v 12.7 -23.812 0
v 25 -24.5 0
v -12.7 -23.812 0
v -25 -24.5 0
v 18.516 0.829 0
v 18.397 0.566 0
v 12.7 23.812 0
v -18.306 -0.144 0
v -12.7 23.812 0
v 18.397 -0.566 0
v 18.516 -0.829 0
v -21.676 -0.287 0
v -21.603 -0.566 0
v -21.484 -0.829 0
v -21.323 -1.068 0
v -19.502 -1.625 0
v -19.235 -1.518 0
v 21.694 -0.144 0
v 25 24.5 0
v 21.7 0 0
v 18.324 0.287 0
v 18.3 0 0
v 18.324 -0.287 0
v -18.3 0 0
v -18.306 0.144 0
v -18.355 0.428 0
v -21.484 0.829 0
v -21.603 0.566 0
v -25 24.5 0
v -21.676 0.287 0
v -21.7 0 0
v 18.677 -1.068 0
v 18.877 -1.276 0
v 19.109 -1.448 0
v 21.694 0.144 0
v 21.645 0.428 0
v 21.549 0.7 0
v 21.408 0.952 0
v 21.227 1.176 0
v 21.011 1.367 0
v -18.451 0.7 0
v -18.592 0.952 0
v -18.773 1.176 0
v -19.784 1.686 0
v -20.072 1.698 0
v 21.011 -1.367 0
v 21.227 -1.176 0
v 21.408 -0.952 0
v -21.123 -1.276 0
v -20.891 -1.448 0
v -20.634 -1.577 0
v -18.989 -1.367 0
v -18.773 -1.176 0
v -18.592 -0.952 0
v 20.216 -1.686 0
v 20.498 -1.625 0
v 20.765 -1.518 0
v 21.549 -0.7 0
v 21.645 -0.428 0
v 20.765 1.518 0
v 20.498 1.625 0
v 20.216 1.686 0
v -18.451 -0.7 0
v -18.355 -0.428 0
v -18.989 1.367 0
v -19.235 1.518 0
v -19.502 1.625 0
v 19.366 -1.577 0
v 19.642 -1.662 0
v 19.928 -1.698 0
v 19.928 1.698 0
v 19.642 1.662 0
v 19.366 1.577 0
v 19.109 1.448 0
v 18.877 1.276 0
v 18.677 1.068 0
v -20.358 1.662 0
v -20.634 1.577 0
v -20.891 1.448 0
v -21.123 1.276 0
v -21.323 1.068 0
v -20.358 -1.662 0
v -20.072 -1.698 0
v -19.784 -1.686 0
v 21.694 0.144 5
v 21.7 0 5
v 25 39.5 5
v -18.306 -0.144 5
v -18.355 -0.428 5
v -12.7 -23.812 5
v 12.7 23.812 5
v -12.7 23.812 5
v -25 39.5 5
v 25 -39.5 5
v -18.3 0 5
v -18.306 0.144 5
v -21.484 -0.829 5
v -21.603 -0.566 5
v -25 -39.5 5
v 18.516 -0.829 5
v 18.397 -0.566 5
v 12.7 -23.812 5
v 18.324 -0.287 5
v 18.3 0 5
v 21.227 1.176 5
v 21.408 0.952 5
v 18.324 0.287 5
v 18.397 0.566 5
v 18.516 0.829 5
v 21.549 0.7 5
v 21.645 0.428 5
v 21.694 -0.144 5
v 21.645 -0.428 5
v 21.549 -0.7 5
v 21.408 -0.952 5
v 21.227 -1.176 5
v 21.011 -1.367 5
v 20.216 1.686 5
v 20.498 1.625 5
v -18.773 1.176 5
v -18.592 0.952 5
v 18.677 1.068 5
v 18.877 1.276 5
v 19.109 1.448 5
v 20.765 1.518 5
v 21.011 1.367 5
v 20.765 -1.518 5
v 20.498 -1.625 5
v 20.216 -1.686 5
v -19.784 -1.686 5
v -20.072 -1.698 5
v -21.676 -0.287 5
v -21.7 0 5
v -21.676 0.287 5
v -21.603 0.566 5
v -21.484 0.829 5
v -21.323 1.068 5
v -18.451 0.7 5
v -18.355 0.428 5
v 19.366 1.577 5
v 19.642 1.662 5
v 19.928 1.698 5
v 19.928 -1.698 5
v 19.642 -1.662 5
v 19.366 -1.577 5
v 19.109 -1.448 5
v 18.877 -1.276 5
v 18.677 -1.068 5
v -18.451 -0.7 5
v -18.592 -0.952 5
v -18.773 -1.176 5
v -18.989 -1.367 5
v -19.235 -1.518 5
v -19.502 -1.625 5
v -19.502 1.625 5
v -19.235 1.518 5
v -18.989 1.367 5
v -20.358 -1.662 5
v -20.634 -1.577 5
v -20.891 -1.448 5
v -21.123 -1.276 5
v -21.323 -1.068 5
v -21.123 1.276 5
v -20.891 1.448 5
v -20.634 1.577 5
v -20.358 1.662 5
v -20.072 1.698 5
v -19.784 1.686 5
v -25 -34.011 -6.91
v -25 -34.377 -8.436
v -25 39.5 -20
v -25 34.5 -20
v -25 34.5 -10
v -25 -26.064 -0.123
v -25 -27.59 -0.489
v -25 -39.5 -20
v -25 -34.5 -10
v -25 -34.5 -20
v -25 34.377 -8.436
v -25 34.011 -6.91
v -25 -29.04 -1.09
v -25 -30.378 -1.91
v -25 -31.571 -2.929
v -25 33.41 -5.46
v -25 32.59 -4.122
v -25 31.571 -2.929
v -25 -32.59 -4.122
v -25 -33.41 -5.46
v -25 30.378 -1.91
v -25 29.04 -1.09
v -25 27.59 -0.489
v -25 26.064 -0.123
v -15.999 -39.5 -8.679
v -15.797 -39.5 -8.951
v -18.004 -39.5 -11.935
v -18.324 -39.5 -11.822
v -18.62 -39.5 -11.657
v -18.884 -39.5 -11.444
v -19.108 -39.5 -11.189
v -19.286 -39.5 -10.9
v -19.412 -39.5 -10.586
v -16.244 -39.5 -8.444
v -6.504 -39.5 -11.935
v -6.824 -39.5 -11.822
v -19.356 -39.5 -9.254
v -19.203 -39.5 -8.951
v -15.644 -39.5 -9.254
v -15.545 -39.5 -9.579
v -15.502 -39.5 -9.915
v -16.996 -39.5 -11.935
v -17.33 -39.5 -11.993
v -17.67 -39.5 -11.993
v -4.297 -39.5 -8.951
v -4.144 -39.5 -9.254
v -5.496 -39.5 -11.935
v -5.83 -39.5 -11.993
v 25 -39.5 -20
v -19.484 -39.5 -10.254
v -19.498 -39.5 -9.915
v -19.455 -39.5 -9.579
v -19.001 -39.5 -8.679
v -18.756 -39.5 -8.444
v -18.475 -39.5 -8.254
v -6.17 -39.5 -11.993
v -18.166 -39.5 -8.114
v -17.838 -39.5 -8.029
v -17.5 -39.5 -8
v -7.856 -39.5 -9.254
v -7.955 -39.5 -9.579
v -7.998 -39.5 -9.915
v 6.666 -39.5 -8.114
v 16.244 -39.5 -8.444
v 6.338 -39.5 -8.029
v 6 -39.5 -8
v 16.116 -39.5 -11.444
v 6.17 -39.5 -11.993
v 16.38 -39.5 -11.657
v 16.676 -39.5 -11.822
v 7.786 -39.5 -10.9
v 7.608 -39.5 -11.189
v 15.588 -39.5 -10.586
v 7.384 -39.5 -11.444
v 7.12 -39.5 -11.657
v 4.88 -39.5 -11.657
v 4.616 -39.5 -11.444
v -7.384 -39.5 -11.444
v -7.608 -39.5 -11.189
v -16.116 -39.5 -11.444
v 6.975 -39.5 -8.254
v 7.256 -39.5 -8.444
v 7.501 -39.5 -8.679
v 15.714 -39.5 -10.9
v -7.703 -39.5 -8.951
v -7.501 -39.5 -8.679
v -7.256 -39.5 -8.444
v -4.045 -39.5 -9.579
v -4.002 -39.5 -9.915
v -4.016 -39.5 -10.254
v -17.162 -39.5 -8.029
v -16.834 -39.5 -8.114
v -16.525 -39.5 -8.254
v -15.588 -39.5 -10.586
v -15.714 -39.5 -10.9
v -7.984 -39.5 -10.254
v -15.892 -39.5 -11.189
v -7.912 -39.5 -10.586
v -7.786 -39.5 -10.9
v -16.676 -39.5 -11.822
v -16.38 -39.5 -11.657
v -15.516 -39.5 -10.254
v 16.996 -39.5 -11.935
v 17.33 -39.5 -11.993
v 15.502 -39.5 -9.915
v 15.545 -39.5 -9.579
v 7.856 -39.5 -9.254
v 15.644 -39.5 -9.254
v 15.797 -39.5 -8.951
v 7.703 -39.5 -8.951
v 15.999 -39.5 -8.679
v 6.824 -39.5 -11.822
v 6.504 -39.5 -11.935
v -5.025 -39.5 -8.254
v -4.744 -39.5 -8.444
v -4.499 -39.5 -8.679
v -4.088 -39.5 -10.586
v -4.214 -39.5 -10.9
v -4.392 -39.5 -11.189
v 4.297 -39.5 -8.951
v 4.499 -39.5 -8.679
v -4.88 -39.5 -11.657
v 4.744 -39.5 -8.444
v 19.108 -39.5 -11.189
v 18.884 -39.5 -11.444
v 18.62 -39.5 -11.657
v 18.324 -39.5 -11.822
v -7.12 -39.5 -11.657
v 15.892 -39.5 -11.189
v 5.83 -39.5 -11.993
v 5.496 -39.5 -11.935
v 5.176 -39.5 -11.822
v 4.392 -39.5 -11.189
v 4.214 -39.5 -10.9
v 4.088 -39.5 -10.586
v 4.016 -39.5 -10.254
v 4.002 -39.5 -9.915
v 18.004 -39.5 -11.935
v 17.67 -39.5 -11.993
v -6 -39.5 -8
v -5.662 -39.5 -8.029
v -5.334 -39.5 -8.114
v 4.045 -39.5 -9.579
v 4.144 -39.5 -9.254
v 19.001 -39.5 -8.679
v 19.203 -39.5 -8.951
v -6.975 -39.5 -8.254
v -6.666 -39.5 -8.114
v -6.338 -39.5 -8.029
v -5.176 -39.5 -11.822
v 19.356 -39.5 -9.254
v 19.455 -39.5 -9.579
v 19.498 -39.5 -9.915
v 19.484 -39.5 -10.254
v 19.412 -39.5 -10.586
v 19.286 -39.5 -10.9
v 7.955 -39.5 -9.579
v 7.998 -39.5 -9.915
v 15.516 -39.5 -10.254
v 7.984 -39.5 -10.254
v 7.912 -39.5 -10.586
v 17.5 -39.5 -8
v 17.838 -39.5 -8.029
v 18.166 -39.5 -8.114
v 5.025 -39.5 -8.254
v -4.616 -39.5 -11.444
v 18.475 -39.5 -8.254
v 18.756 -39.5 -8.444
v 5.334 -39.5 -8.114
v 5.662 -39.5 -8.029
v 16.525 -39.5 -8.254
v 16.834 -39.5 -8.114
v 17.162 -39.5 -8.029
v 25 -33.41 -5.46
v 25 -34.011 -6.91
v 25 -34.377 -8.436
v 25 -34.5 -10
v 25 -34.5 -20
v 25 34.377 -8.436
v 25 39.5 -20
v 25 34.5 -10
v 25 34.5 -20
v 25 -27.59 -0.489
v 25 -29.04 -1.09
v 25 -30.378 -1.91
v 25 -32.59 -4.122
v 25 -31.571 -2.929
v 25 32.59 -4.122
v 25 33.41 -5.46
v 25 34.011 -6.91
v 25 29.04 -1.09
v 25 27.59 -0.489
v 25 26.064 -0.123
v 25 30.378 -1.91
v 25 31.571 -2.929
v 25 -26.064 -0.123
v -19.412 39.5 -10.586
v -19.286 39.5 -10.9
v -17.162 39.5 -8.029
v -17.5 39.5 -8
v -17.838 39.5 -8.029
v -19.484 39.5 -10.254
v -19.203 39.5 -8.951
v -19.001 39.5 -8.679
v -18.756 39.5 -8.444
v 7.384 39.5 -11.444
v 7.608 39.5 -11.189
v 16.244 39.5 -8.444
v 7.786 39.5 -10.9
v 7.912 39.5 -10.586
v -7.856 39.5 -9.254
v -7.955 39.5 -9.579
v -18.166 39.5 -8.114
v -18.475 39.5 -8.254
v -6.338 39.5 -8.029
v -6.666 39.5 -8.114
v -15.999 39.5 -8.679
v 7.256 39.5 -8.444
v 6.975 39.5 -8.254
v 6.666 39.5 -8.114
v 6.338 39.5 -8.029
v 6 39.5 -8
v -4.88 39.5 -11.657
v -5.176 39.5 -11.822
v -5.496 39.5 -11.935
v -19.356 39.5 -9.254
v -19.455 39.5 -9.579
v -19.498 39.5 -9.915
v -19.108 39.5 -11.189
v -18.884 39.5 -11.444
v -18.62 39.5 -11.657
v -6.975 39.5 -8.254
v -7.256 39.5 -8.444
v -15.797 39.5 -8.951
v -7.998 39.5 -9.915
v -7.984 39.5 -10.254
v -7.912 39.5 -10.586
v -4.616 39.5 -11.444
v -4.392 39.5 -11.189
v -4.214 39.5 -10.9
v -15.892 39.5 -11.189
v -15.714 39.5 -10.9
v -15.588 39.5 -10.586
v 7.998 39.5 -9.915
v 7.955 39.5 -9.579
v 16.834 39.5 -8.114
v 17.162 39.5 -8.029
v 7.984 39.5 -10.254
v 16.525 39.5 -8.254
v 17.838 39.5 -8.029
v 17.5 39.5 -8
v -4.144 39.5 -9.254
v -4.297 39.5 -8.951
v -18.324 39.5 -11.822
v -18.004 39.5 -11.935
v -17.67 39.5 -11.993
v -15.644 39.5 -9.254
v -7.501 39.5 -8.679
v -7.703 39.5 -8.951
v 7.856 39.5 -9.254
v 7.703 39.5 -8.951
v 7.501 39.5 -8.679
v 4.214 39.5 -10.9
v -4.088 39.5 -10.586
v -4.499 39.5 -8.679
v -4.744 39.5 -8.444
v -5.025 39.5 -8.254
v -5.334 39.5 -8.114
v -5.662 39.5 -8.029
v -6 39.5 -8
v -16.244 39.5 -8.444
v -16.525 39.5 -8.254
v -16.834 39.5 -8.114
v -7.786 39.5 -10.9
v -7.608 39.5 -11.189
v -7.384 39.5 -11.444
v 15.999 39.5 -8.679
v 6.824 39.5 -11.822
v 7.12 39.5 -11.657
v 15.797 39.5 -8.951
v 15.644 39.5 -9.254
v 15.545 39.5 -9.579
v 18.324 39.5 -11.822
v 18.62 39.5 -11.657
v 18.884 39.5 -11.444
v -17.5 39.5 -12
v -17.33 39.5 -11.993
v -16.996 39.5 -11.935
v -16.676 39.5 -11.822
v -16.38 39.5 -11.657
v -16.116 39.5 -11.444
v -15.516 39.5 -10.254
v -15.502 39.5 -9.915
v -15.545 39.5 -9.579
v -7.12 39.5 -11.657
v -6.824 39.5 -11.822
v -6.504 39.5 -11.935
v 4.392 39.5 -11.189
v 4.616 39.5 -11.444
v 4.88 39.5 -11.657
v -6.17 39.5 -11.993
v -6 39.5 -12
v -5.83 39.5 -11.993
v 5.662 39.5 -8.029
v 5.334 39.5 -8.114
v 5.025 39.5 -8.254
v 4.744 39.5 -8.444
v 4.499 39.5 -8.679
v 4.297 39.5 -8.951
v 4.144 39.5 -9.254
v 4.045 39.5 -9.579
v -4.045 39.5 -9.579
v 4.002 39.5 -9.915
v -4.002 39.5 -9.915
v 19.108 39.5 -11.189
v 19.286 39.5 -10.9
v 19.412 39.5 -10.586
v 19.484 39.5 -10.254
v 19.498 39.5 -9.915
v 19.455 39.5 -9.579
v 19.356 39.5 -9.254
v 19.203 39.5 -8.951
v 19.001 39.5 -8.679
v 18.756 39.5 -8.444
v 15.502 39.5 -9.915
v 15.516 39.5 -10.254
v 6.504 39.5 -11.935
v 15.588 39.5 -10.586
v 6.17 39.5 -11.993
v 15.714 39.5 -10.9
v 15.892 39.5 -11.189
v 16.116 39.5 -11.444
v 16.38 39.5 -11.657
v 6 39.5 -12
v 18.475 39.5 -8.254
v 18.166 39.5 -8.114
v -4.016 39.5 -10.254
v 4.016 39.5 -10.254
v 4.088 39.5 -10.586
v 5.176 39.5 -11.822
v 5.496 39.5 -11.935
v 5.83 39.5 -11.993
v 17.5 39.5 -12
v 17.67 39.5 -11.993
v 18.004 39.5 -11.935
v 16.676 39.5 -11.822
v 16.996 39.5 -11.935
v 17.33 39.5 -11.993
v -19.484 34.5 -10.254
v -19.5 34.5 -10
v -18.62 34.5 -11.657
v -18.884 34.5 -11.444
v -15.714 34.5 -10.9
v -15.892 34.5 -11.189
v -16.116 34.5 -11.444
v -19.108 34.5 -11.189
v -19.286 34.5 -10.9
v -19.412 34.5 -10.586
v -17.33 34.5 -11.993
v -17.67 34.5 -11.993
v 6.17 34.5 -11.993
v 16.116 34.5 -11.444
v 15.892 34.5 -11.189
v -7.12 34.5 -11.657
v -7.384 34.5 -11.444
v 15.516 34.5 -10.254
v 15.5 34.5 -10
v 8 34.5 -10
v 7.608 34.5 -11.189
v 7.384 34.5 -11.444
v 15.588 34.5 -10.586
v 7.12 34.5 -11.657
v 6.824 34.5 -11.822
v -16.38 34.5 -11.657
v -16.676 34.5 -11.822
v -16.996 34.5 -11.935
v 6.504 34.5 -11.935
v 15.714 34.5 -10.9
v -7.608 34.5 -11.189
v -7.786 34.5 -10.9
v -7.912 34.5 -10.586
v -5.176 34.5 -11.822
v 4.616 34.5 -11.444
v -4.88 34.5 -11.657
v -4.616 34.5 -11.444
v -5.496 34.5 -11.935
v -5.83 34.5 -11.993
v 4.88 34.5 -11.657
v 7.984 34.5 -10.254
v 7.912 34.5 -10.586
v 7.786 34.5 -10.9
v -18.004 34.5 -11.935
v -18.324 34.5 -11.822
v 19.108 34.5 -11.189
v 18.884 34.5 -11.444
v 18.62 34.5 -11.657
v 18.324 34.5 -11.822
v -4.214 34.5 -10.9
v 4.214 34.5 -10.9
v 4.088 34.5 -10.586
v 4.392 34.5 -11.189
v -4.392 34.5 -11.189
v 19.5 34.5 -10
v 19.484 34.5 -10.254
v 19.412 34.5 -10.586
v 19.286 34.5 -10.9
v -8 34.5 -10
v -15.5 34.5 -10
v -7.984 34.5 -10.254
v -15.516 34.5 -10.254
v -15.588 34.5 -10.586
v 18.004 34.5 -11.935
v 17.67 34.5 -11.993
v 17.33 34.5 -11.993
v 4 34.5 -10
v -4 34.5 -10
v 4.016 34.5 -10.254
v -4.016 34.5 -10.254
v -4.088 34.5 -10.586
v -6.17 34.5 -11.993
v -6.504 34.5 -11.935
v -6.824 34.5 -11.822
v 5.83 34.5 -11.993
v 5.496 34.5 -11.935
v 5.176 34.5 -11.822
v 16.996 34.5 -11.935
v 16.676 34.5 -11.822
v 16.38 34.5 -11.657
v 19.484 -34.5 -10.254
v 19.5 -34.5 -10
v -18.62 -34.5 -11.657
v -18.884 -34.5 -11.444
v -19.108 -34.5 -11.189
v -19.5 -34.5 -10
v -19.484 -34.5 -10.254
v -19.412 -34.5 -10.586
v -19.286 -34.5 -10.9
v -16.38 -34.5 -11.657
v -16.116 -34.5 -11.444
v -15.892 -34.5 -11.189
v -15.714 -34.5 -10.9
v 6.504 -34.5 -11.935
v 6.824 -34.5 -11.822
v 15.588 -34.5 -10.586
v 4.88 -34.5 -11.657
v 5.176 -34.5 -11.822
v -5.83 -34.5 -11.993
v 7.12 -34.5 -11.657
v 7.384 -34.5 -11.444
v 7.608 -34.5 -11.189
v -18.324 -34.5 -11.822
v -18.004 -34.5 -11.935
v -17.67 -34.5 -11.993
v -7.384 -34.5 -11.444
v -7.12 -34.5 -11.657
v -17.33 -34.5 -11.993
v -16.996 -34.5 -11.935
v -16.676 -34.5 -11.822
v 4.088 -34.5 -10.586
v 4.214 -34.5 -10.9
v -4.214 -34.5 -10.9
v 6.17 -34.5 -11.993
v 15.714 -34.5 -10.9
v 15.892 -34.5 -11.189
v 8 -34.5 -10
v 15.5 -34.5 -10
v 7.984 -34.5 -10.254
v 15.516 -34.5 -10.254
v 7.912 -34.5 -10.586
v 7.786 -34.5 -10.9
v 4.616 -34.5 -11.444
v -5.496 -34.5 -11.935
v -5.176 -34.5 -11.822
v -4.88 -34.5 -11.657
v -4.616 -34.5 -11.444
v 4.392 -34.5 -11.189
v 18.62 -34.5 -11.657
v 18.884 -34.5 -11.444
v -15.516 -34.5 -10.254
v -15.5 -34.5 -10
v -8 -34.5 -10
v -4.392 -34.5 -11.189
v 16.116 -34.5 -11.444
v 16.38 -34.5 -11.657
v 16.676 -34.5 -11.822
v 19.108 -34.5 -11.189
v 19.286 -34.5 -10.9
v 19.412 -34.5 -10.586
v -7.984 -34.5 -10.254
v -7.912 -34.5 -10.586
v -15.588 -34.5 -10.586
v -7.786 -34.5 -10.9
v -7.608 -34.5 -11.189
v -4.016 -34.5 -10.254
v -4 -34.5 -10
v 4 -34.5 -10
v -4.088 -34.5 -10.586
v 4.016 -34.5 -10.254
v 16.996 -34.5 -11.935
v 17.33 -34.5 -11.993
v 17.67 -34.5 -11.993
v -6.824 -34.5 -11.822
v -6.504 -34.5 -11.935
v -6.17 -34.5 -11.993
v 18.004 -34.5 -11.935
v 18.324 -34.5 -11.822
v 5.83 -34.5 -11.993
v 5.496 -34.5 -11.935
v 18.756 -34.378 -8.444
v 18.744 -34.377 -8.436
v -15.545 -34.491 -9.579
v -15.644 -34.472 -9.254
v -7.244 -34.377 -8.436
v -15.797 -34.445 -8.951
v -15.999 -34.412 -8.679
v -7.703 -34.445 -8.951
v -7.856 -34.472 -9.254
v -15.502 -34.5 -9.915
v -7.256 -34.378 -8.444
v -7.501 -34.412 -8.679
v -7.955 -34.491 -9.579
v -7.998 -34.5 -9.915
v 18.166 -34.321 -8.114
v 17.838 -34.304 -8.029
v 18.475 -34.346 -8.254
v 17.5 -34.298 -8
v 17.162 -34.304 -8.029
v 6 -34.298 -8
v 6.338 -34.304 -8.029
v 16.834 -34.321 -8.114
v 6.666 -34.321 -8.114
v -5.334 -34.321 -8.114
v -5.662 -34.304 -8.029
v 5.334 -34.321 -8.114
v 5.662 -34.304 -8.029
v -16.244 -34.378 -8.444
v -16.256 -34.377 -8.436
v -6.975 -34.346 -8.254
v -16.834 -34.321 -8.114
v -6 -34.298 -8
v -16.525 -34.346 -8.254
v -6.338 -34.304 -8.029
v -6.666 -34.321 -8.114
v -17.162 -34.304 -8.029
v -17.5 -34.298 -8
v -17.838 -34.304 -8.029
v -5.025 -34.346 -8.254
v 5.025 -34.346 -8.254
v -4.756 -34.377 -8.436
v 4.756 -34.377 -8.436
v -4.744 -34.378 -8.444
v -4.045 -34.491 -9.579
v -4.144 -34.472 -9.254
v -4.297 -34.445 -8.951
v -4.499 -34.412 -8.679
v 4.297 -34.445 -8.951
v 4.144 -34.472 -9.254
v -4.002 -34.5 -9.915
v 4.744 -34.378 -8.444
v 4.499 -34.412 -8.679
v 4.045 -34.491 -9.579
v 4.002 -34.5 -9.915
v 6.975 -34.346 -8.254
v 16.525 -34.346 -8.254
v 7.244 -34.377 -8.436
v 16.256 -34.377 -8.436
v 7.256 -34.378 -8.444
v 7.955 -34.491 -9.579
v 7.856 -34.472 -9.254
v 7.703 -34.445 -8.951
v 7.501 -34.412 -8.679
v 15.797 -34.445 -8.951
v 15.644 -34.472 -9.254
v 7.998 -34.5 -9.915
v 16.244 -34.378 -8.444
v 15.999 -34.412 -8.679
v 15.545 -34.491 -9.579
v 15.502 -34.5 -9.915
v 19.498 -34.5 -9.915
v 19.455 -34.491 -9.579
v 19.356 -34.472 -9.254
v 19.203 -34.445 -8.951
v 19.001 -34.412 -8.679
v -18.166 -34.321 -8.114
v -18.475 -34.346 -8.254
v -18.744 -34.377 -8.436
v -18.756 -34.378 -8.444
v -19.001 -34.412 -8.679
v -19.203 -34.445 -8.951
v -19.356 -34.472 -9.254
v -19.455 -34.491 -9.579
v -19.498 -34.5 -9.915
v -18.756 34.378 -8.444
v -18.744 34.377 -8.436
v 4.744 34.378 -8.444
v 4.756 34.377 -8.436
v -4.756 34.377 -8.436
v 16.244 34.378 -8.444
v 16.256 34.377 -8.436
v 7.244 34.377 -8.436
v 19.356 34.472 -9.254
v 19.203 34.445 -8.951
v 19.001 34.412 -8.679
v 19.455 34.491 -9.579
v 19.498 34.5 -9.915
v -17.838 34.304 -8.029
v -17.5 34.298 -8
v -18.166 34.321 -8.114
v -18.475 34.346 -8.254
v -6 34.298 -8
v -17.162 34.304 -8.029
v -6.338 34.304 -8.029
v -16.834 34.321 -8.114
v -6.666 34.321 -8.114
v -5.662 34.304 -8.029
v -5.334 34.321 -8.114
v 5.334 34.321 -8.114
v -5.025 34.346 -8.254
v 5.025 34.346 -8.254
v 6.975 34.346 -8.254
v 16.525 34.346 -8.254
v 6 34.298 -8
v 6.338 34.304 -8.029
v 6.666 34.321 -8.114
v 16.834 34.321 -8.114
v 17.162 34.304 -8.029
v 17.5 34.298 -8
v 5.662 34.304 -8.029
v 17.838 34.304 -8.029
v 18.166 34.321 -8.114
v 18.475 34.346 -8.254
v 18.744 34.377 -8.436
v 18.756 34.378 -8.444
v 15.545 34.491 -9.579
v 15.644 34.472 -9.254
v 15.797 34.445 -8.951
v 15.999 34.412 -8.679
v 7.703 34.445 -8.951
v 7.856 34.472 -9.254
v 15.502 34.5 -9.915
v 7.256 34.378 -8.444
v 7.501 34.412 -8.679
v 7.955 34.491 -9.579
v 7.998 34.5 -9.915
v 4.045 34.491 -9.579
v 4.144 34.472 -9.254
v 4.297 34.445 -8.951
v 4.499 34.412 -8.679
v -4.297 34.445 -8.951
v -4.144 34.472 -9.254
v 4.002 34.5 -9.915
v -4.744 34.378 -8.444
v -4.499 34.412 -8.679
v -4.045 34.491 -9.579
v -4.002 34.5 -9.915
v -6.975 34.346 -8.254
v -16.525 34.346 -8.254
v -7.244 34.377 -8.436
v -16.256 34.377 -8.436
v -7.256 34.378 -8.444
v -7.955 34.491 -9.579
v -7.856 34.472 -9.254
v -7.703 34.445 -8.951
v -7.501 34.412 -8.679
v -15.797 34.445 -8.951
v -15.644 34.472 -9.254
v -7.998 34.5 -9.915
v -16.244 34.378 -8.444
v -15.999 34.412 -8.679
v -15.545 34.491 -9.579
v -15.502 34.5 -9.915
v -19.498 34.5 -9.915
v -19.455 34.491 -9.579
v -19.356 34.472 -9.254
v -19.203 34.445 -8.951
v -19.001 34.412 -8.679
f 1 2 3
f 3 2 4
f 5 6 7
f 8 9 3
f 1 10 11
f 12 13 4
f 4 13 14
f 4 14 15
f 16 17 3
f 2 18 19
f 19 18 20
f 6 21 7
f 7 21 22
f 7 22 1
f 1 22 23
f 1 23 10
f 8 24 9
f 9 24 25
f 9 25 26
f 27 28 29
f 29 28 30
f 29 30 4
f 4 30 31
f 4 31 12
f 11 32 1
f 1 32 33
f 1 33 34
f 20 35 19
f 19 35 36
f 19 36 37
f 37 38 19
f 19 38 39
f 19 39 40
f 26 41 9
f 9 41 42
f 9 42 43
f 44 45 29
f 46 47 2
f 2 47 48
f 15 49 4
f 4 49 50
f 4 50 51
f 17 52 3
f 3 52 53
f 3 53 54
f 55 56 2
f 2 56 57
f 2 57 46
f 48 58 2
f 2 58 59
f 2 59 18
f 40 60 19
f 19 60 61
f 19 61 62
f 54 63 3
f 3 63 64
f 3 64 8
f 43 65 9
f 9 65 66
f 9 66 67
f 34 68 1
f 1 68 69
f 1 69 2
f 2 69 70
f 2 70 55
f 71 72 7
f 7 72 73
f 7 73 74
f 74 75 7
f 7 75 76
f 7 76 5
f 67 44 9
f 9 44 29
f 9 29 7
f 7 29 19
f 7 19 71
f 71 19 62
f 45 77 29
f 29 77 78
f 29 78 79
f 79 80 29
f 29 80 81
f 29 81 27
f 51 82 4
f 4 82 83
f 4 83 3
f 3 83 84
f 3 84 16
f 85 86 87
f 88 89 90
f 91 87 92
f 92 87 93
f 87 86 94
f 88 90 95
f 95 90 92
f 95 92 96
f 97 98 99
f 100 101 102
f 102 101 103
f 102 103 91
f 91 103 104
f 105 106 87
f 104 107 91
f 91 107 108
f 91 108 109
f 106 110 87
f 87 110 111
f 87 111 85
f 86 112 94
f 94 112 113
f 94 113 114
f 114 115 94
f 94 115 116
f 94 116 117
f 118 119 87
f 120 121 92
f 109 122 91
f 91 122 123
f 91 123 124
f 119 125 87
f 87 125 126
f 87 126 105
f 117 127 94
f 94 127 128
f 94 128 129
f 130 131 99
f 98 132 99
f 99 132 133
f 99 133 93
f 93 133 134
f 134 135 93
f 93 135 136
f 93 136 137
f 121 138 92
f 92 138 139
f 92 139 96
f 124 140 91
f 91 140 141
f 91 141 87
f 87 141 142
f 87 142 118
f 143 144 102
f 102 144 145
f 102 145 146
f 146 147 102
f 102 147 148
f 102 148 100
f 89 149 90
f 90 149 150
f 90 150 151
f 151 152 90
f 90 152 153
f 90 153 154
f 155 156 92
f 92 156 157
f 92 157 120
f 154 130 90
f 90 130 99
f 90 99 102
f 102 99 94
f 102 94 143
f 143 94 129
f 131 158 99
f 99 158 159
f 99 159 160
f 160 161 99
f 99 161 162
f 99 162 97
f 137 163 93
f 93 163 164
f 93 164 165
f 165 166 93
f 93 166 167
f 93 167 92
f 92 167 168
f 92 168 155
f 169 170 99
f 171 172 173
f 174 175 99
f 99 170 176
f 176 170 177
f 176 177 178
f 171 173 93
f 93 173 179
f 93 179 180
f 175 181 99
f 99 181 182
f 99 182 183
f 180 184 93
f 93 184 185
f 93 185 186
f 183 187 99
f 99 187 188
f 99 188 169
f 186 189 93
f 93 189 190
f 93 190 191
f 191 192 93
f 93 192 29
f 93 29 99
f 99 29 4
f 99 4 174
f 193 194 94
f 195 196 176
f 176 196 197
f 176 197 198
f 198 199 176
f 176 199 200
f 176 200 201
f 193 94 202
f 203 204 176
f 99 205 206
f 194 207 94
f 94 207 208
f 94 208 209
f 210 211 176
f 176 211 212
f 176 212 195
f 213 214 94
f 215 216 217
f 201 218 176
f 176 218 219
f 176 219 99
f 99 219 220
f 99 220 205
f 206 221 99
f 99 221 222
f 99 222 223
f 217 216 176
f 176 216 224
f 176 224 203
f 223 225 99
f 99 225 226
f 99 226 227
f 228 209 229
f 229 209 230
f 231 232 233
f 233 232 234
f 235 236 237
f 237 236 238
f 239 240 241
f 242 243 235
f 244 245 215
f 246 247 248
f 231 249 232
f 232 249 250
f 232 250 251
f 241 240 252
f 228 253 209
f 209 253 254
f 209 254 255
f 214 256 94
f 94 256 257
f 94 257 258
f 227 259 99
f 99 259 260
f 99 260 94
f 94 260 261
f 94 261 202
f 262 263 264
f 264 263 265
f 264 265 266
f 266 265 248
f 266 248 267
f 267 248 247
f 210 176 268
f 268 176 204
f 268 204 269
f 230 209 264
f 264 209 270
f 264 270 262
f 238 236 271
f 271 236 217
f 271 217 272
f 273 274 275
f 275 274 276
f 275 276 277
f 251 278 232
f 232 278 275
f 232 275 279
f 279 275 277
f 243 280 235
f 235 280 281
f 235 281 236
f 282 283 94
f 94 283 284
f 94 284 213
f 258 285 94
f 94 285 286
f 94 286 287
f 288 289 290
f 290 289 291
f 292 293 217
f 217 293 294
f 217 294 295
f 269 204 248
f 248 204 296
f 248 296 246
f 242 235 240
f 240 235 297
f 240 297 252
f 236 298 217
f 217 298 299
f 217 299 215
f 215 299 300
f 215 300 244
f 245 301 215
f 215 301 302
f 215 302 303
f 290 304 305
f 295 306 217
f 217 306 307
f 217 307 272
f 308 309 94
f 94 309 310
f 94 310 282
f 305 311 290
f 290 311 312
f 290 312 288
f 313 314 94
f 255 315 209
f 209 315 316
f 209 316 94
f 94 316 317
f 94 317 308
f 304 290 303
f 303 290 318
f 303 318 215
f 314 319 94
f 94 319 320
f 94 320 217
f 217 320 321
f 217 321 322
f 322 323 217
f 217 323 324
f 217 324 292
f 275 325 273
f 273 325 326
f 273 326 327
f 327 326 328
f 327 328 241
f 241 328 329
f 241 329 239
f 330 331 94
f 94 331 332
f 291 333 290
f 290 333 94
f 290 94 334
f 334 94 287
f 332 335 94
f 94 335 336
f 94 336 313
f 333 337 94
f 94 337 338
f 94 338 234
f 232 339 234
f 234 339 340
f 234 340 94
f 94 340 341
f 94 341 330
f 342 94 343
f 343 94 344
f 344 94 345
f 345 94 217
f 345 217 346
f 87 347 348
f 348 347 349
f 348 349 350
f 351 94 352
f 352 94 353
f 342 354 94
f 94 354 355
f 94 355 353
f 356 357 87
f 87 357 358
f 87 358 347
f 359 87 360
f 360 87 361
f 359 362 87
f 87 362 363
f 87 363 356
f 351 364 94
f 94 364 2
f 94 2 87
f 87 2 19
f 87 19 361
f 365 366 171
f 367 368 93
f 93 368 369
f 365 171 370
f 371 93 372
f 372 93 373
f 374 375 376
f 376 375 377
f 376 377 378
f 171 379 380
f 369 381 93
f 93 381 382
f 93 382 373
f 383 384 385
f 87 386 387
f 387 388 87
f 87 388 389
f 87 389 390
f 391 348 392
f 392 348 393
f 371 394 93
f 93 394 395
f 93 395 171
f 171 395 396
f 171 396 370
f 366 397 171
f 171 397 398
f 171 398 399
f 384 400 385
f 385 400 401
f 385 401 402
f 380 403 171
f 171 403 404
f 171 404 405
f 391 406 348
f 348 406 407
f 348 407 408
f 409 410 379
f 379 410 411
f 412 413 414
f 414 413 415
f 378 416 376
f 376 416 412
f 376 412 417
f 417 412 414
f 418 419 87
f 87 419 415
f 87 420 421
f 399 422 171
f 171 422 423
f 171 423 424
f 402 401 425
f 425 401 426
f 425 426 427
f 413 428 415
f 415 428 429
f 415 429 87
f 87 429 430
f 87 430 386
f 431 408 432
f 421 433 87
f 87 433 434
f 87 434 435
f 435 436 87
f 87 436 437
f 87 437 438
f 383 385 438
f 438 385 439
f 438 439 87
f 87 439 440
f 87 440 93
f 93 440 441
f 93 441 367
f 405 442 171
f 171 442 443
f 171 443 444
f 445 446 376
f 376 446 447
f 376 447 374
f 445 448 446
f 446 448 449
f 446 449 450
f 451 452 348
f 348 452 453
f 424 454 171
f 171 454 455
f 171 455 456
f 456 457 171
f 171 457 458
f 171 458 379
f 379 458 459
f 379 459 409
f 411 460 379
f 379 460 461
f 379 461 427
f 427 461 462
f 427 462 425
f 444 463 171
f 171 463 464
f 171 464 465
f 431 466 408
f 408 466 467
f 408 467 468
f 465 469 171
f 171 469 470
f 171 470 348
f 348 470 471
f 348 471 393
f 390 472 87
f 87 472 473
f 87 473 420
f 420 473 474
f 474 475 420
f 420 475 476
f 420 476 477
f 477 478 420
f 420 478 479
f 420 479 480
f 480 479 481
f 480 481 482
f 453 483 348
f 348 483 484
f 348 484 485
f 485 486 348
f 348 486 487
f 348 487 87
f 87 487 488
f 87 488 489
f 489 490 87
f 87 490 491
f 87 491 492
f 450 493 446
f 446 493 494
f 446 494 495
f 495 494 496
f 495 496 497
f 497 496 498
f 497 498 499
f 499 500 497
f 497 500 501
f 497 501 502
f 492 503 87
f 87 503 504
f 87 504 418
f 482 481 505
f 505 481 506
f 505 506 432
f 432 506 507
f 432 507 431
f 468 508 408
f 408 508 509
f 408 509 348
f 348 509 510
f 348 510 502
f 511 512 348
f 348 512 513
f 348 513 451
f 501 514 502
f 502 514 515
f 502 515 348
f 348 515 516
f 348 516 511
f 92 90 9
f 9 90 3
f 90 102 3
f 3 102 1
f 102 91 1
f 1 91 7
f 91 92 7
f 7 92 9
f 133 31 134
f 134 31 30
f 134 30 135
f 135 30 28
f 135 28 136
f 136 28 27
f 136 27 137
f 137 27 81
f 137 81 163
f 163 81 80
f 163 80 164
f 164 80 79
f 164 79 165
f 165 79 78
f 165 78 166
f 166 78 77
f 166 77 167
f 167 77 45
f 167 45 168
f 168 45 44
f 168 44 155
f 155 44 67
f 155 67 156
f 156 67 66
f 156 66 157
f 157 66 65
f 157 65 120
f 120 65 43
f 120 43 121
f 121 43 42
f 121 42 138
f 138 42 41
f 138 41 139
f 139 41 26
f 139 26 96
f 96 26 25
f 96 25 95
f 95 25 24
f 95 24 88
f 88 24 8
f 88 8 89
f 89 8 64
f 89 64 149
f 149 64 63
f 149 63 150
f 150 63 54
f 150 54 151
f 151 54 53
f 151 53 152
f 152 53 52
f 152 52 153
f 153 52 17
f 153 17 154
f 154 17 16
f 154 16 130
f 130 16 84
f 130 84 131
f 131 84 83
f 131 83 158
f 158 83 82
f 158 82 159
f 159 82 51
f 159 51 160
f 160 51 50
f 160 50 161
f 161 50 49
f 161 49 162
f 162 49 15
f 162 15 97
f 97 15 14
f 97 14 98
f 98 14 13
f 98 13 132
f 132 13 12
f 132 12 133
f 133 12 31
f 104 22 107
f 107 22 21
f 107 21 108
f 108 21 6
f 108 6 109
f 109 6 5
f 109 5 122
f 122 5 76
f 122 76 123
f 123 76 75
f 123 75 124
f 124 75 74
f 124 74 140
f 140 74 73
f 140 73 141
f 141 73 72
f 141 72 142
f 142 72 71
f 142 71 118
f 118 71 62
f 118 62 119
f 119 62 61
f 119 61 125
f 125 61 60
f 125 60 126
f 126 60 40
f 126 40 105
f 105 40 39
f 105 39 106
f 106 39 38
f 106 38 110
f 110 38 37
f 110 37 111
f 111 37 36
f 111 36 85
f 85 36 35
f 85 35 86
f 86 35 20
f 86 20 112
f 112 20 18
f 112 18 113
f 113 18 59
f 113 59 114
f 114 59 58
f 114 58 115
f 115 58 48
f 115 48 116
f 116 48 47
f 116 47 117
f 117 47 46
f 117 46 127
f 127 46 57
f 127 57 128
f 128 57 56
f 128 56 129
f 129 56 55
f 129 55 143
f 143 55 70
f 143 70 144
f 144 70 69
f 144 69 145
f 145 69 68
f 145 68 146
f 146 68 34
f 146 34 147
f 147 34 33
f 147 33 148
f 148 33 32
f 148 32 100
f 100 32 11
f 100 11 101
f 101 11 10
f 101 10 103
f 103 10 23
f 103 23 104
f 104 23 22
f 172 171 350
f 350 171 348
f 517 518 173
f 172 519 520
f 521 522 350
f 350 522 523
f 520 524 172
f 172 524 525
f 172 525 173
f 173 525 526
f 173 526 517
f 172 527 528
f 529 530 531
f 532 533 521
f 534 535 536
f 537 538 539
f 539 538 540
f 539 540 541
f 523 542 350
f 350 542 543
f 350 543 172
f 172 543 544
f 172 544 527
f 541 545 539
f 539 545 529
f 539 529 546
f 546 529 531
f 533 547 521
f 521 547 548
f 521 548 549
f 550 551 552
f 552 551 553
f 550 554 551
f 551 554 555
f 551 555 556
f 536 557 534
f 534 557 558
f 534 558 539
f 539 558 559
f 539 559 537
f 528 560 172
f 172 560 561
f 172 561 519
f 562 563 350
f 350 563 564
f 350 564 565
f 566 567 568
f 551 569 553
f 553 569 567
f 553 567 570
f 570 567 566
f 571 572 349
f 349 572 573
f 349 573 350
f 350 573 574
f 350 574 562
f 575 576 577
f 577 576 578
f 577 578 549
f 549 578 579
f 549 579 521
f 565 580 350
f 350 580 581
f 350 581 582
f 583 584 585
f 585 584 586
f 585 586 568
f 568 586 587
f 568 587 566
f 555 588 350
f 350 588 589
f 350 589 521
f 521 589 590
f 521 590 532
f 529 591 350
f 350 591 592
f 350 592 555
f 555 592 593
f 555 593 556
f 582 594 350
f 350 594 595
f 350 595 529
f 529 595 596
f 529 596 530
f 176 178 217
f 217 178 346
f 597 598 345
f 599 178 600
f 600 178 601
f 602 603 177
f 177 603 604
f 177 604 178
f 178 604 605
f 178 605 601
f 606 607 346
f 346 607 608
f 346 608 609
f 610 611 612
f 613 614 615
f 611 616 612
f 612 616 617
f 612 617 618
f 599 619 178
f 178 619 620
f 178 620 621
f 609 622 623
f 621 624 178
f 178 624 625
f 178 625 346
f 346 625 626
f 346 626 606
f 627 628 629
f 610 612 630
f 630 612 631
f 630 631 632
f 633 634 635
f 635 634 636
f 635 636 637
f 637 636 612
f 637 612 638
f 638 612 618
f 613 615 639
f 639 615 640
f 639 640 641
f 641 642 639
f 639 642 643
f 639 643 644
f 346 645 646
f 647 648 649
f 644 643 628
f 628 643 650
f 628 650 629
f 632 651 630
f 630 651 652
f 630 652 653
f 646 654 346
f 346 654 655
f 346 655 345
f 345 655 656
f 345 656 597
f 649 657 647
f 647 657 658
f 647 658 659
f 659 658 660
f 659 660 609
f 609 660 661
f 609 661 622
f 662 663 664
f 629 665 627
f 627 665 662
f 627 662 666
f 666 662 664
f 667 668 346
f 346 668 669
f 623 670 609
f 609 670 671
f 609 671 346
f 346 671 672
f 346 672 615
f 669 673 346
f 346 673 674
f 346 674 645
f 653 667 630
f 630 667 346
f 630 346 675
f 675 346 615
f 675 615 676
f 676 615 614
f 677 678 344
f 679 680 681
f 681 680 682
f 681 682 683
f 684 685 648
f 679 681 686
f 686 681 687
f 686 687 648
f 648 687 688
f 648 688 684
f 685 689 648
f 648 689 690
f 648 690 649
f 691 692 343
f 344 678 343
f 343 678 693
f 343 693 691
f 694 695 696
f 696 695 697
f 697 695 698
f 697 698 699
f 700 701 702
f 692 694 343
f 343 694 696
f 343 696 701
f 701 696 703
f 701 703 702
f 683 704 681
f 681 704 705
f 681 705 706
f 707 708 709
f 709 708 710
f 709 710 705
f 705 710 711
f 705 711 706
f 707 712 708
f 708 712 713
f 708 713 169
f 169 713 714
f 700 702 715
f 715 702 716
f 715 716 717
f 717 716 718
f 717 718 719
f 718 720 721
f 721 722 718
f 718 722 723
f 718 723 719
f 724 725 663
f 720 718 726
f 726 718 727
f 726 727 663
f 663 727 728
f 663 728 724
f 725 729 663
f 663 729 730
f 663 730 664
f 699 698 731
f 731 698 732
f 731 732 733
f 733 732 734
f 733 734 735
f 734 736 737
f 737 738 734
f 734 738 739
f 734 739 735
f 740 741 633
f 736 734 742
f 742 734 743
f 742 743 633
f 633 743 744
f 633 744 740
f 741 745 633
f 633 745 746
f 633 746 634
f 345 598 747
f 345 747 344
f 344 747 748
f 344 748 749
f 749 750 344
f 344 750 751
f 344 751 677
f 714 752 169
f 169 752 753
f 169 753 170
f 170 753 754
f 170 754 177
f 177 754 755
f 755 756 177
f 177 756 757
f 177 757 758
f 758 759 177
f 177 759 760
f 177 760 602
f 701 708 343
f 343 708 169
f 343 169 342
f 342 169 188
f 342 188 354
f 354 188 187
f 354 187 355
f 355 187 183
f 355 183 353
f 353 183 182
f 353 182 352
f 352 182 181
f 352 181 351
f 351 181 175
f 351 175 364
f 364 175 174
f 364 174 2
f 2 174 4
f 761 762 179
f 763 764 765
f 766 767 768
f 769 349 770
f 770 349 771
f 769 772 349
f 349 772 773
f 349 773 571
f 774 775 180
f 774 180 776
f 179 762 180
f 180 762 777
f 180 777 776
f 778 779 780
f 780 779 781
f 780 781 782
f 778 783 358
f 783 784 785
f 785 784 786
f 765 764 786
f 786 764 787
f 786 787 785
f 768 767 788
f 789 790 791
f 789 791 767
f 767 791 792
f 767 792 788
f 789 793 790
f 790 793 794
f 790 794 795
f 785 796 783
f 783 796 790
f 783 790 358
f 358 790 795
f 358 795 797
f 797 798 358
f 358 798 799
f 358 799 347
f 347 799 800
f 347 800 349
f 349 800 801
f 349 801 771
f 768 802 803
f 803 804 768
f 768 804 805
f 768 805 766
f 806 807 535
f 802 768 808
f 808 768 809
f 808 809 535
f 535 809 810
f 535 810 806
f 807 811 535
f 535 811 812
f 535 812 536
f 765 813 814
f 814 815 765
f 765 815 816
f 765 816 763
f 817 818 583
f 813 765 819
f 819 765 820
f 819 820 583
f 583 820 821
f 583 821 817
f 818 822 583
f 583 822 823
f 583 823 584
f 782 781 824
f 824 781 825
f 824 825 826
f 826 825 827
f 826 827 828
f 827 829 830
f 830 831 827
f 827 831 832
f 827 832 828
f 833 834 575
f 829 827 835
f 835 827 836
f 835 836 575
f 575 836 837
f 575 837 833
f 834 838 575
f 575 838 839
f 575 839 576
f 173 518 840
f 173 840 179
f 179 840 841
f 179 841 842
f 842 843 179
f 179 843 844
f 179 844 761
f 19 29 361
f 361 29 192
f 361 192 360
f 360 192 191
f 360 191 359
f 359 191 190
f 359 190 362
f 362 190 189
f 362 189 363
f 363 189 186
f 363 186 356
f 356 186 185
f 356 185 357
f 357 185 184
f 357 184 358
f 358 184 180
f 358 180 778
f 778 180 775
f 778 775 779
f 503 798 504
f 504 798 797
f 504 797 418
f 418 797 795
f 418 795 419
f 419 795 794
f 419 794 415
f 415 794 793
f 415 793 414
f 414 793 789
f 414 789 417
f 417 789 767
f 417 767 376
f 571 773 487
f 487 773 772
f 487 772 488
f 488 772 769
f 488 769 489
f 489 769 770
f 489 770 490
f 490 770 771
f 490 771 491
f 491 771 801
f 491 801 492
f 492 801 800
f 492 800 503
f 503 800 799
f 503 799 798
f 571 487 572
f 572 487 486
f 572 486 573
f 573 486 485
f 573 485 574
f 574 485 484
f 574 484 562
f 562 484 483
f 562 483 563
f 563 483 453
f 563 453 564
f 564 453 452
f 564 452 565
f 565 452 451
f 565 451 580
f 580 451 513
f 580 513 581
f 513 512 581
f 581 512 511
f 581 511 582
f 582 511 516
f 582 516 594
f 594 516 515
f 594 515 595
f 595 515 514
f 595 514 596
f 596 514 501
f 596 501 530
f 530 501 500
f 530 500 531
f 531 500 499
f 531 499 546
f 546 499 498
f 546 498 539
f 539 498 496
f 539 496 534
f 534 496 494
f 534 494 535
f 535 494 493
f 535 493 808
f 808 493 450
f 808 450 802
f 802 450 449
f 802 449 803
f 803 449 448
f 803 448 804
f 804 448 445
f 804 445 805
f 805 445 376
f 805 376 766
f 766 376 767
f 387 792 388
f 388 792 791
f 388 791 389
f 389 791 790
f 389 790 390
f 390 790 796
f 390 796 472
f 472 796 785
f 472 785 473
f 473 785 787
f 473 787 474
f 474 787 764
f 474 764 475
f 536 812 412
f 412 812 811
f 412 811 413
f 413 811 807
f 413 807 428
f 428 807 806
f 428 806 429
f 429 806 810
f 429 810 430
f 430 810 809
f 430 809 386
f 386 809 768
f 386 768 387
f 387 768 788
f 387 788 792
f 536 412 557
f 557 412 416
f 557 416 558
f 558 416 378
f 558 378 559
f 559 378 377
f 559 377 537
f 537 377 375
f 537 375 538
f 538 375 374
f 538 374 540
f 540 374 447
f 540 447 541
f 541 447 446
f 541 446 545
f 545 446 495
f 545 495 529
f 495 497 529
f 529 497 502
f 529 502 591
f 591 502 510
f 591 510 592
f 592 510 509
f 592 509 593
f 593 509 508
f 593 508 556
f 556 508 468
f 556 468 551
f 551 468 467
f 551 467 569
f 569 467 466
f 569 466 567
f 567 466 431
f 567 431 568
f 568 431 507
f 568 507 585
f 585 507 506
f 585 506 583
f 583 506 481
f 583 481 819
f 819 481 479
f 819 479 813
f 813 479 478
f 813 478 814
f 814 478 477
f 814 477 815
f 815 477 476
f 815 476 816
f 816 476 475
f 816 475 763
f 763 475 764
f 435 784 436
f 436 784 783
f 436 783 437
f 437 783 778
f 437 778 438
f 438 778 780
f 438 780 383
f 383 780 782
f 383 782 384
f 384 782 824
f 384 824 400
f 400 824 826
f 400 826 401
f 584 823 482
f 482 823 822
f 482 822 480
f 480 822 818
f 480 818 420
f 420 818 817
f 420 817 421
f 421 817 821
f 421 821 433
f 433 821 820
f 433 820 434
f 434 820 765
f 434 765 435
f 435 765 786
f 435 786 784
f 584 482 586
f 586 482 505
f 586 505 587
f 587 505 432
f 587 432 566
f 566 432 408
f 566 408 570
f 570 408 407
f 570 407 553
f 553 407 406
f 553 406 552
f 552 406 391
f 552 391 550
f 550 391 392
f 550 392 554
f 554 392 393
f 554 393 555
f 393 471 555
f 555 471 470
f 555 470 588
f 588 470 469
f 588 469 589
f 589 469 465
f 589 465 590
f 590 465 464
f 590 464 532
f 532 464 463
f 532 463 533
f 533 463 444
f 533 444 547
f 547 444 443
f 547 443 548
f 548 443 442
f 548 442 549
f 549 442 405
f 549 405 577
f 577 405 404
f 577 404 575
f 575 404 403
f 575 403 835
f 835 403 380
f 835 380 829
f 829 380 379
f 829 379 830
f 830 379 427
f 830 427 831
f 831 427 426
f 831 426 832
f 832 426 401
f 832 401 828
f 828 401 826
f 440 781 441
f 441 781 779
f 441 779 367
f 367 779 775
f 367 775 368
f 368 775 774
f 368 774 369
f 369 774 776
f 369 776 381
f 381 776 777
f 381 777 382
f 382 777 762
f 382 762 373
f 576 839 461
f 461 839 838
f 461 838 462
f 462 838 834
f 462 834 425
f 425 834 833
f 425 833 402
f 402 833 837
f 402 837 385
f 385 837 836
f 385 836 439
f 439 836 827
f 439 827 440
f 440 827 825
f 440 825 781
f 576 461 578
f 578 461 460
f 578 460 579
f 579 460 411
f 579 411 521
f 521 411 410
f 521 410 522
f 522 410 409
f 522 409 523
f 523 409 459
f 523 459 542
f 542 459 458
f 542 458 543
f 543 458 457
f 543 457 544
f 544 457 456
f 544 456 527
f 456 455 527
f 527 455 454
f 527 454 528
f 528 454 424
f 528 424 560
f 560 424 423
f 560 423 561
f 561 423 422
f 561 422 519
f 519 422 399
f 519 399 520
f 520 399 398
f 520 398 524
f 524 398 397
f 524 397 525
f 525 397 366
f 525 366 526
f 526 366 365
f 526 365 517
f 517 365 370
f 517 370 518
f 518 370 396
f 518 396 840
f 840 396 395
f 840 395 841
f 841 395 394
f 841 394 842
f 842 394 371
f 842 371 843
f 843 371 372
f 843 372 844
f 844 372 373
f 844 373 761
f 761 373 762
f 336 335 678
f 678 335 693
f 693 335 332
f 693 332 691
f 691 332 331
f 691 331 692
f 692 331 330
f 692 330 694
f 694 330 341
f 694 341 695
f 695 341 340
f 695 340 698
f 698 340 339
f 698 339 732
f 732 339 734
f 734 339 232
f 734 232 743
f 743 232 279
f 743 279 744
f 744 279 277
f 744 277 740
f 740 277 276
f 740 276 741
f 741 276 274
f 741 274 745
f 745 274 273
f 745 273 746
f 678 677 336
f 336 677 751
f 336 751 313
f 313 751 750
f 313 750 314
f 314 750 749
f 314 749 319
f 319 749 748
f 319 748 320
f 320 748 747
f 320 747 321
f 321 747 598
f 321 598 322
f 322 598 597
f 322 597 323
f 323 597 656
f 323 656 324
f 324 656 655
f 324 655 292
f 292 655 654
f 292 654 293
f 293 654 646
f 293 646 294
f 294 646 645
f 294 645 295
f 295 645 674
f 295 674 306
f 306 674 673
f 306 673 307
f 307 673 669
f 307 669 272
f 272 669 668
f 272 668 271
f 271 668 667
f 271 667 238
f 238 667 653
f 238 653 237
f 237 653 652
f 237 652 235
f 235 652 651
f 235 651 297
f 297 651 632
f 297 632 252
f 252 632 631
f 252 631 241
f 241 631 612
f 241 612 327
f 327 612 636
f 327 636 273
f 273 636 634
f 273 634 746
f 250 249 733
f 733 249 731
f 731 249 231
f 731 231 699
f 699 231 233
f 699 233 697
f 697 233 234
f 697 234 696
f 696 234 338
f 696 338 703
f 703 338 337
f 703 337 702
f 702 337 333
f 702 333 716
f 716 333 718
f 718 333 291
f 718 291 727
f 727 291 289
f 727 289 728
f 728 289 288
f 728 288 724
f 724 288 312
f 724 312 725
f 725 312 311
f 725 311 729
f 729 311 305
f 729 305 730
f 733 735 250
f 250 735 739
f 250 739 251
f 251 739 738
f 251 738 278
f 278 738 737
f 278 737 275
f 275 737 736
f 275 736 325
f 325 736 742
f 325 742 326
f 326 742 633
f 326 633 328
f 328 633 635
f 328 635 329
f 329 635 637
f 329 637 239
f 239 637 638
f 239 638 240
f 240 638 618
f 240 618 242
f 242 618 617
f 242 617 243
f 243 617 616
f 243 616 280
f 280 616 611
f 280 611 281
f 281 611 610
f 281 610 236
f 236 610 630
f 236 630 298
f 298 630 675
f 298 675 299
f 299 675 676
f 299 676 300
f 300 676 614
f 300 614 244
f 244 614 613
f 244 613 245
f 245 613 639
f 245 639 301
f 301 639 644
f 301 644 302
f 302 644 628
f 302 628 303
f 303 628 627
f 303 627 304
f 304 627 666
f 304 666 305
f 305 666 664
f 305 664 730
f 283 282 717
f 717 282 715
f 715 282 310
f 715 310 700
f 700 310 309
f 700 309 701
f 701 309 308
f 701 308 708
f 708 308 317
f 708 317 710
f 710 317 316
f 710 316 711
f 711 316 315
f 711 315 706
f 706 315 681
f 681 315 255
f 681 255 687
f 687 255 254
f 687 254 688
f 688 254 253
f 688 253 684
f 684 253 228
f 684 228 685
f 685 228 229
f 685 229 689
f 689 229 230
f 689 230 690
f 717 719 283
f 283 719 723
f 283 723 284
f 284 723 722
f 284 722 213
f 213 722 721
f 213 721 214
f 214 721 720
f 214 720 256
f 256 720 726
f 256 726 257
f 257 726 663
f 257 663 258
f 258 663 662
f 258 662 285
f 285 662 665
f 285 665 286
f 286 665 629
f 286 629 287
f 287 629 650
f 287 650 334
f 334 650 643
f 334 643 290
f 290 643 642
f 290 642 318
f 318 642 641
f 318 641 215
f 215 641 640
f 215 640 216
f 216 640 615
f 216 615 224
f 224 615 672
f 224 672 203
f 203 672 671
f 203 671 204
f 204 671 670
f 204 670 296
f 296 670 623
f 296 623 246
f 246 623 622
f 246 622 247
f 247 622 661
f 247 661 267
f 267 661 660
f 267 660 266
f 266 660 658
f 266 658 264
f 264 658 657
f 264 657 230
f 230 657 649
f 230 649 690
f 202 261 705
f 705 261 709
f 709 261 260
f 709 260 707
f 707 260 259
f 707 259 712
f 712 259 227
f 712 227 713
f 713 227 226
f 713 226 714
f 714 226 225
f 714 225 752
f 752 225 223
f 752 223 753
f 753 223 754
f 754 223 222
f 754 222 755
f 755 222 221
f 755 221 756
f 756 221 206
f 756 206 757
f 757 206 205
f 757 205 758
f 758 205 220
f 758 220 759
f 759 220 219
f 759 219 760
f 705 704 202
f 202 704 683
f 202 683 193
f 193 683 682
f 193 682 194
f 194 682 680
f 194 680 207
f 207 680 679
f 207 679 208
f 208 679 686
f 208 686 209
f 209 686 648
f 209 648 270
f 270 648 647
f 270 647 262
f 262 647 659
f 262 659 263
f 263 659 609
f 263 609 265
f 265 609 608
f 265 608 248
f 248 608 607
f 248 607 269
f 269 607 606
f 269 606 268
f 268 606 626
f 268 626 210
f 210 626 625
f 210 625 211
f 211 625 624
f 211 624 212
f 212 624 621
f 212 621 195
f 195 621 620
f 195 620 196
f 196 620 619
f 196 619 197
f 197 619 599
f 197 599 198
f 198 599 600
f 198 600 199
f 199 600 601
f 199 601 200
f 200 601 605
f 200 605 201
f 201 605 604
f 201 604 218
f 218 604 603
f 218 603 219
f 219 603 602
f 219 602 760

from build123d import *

# Parameters (mm, degrees)
SKETCH1_W               = 50
SKETCH1_H               = 79
SKETCH1_R               = 1.7
SKETCH1_W_2             = 25.4
SKETCH1_H_2             = 47.625
BOSS_EXTRUDE1_DEPTH     = 5
SKETCH2_W               = 20
SKETCH2_H               = 5
BOSS_EXTRUDE2_DEPTH     = 50
FILLET1_R               = 10
CUT_EXTRUDE1_DEPTH      = 86.240835285
CUT_EXTRUDE1_DEPTH_BACK = 86.240835285
SKETCH3_R               = 2


with BuildPart() as part:
    # Sketch1 → Boss-Extrude1 (new body)
    with BuildSketch(Plane.XY):
        Rectangle(SKETCH1_W, SKETCH1_H)
        with Locations((-20, 0)):
            Circle(SKETCH1_R, mode=Mode.SUBTRACT)
        with Locations((20, 0)):
            Circle(SKETCH1_R, mode=Mode.SUBTRACT)
        Rectangle(SKETCH1_W_2, SKETCH1_H_2, mode=Mode.SUBTRACT)
    extrude(amount=BOSS_EXTRUDE1_DEPTH)

    # Sketch2 → Boss-Extrude2 (add)
    with BuildSketch(Plane.ZY.offset(25)):
        with Locations((-10, 37)):
            Rectangle(SKETCH2_W, SKETCH2_H)
        with Locations((-10, -37)):
            Rectangle(SKETCH2_W, SKETCH2_H)
    extrude(amount=-BOSS_EXTRUDE2_DEPTH)

    # Fillet1
    fillet1_edges = [part.edges().sort_by_distance(p)[0] for p in [
        (0, 34.5, 0),
        (0, -34.5, 0),
    ]]
    fillet(fillet1_edges, radius=FILLET1_R)

    # Sketch3 → Cut-Extrude1 (cut, two sides: drawn at the far end of the back side and taken through both)
    with BuildSketch(Plane(origin=(0, 39.5, 0), x_dir=(1, 0, 0), z_dir=(0, 1, 0)).offset(-CUT_EXTRUDE1_DEPTH_BACK)):
        with Locations((-17.5, 10)):
            Circle(SKETCH3_R)
        with Locations((-6, 10)):
            Circle(SKETCH3_R)
        with Locations(Location((6, 10, 0), (0, 0, 180))):
            Circle(SKETCH3_R)
        with Locations((17.5, 10)):
            Circle(SKETCH3_R)
    extrude(amount=CUT_EXTRUDE1_DEPTH + CUT_EXTRUDE1_DEPTH_BACK, mode=Mode.SUBTRACT)


solid = part.part
